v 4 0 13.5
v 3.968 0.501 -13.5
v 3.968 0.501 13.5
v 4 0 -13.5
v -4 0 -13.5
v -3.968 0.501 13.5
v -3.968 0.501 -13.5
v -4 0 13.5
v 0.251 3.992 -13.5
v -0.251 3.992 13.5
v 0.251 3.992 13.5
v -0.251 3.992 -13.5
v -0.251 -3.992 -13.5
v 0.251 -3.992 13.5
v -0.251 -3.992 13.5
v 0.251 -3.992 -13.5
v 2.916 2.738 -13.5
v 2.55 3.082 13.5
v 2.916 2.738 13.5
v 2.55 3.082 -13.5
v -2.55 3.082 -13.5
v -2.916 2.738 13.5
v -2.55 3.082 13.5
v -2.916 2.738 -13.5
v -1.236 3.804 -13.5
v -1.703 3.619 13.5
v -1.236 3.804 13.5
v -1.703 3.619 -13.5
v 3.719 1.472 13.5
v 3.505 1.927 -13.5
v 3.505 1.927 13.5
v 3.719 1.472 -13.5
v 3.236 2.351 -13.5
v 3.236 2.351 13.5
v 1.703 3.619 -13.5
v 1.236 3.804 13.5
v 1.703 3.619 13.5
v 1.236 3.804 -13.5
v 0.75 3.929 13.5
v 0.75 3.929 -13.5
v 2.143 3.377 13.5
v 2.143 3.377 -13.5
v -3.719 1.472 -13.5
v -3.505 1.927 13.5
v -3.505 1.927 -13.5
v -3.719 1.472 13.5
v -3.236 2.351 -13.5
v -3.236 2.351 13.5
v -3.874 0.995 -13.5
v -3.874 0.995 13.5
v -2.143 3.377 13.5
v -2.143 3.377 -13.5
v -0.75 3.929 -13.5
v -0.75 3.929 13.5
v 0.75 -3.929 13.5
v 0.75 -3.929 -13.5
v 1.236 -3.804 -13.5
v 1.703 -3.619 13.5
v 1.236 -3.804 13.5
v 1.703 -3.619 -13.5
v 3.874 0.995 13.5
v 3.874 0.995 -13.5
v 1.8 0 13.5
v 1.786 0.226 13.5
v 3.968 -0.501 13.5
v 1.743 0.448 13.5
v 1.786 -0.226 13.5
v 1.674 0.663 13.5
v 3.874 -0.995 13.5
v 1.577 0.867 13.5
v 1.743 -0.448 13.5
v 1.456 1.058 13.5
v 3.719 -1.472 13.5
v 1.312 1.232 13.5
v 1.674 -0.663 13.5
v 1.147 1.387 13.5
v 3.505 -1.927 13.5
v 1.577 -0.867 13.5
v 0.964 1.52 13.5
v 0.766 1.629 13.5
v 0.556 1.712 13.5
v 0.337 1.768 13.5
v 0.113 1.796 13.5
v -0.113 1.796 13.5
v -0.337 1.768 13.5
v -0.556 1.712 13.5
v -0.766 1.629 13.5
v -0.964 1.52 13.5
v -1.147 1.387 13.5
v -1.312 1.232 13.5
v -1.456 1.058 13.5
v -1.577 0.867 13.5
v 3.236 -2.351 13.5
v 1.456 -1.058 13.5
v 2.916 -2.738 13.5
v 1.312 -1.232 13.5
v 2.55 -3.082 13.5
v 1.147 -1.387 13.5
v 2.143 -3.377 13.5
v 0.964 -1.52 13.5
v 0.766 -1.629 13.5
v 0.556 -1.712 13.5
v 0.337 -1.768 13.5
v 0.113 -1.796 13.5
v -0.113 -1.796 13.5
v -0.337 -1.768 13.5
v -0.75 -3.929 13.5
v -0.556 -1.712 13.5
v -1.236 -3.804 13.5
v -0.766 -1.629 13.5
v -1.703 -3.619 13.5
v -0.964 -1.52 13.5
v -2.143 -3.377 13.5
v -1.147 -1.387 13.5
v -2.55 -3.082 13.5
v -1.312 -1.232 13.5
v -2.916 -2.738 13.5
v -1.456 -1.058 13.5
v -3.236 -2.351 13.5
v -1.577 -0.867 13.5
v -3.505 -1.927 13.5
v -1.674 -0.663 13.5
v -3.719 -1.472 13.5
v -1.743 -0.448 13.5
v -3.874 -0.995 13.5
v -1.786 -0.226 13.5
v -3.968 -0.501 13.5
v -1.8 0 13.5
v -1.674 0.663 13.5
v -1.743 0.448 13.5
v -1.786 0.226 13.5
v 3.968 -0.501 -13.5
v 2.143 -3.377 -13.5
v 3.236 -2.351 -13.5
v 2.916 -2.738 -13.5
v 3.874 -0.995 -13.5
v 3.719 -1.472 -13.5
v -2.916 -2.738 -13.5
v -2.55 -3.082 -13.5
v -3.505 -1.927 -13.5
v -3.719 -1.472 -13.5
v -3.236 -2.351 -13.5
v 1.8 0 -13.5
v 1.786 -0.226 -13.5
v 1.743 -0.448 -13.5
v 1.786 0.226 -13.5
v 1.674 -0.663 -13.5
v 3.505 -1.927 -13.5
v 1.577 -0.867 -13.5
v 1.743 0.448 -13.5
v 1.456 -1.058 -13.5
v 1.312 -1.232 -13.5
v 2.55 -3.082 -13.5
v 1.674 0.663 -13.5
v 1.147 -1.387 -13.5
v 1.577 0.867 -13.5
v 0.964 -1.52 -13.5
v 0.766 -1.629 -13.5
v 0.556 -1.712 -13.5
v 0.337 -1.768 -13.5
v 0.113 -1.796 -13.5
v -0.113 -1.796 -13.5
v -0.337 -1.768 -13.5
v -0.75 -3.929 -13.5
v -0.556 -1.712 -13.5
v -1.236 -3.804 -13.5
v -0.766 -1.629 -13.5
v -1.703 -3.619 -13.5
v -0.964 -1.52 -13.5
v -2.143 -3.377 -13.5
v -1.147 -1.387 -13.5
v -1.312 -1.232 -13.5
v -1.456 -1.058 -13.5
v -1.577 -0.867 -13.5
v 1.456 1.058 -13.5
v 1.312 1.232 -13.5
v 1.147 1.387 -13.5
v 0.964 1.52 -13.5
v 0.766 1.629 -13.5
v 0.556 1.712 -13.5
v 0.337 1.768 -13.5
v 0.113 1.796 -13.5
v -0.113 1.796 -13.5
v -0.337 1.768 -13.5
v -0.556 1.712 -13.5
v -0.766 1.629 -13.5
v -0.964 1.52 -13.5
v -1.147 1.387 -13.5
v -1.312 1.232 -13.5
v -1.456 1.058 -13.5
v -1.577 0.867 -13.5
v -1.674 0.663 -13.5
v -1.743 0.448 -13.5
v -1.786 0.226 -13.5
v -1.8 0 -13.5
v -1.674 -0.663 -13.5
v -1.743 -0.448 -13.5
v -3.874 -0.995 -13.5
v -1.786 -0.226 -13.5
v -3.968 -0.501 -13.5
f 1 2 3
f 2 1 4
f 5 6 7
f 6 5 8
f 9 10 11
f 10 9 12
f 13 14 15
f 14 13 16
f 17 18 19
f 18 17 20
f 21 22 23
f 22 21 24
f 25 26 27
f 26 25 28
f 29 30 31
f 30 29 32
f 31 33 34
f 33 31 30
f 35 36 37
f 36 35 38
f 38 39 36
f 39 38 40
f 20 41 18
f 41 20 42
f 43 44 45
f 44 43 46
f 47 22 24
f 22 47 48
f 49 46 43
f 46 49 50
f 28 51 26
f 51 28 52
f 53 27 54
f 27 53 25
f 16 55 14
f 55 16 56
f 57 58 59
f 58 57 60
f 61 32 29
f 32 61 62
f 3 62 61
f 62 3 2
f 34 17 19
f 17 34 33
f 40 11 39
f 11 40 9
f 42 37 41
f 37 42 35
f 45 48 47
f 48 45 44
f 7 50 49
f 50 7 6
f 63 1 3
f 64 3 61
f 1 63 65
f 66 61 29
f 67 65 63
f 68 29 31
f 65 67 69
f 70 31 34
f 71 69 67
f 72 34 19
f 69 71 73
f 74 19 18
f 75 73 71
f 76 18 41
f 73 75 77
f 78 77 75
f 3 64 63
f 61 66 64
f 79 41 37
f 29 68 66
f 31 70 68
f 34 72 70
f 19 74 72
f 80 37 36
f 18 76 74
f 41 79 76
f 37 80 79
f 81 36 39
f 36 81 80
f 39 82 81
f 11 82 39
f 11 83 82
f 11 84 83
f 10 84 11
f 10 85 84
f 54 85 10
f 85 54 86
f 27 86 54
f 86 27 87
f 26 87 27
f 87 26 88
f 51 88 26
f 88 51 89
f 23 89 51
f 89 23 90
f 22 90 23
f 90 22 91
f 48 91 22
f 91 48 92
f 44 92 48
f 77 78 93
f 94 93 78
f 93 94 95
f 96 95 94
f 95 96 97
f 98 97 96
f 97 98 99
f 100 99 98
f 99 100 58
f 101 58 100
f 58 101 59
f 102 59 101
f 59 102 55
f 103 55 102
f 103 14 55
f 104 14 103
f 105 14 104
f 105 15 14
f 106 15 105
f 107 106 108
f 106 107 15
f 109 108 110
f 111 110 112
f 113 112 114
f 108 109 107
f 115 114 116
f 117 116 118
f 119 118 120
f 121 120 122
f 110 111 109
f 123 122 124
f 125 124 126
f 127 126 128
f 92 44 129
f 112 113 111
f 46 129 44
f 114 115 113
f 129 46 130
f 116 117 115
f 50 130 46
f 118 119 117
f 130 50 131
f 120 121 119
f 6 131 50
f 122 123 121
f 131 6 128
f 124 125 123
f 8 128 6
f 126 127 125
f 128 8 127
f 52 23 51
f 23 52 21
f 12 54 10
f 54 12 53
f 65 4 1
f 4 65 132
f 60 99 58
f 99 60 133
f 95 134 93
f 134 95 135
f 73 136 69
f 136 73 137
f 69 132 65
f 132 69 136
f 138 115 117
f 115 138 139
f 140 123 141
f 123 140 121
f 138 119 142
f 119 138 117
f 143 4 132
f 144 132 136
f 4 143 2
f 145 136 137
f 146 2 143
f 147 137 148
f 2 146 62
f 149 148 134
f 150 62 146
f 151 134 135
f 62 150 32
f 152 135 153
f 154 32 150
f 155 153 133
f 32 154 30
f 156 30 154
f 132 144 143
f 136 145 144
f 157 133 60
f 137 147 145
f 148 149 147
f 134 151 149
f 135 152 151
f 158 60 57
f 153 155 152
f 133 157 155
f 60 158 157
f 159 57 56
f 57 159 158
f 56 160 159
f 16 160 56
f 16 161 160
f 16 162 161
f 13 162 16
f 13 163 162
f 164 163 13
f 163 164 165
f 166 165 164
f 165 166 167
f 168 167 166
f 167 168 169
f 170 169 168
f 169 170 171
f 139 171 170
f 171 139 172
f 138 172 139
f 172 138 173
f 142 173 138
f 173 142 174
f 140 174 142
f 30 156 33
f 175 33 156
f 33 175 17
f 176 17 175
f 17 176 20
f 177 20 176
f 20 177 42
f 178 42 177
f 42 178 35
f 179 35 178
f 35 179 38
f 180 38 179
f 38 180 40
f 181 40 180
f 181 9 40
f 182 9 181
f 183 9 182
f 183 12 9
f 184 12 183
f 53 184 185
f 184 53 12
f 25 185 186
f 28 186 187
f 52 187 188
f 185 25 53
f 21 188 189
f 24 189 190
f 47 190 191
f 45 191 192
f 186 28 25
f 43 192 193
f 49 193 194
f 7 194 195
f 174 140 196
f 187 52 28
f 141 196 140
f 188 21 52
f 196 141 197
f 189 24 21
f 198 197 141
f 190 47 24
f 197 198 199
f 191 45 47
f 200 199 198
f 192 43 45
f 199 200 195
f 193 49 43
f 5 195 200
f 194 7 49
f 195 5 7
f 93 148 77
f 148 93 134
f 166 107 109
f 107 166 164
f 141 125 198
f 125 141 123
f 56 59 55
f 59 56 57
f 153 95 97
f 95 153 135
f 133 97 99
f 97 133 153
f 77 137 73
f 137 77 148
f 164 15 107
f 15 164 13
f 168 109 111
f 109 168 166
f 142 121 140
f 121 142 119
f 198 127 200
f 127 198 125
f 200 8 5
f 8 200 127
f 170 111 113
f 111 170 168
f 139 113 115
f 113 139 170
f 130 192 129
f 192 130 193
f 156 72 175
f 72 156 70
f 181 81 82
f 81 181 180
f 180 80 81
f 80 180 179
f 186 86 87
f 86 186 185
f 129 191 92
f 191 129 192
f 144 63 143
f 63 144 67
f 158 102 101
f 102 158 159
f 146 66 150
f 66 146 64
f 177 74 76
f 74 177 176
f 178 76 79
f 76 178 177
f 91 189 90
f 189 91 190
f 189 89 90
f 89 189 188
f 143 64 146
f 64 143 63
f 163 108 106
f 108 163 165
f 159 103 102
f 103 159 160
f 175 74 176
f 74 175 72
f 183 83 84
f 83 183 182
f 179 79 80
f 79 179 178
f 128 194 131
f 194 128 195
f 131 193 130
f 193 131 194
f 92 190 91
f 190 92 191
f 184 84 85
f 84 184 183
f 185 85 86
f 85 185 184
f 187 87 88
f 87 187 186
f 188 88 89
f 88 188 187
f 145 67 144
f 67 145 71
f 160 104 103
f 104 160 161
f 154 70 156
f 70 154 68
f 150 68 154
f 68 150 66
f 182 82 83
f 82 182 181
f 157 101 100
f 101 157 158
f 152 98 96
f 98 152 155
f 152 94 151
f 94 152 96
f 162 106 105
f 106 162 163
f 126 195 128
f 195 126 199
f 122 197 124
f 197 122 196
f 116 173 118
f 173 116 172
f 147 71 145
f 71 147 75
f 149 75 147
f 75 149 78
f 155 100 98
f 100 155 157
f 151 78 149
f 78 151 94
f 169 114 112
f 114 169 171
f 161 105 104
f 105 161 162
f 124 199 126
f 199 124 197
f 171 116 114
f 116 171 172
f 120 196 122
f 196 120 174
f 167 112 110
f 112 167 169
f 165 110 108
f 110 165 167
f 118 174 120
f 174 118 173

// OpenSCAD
$fn = 50;


difference() {
	union() {
		translate(v = [0, 0, -13.5000000000]) {
			cylinder(h = 27, r = 4.0000000000);
		}
	}
	union() {
		translate(v = [0, 0, -100.0000000000]) {
			cylinder(h = 200, r = 1.8000000000);
		}
	}
}
